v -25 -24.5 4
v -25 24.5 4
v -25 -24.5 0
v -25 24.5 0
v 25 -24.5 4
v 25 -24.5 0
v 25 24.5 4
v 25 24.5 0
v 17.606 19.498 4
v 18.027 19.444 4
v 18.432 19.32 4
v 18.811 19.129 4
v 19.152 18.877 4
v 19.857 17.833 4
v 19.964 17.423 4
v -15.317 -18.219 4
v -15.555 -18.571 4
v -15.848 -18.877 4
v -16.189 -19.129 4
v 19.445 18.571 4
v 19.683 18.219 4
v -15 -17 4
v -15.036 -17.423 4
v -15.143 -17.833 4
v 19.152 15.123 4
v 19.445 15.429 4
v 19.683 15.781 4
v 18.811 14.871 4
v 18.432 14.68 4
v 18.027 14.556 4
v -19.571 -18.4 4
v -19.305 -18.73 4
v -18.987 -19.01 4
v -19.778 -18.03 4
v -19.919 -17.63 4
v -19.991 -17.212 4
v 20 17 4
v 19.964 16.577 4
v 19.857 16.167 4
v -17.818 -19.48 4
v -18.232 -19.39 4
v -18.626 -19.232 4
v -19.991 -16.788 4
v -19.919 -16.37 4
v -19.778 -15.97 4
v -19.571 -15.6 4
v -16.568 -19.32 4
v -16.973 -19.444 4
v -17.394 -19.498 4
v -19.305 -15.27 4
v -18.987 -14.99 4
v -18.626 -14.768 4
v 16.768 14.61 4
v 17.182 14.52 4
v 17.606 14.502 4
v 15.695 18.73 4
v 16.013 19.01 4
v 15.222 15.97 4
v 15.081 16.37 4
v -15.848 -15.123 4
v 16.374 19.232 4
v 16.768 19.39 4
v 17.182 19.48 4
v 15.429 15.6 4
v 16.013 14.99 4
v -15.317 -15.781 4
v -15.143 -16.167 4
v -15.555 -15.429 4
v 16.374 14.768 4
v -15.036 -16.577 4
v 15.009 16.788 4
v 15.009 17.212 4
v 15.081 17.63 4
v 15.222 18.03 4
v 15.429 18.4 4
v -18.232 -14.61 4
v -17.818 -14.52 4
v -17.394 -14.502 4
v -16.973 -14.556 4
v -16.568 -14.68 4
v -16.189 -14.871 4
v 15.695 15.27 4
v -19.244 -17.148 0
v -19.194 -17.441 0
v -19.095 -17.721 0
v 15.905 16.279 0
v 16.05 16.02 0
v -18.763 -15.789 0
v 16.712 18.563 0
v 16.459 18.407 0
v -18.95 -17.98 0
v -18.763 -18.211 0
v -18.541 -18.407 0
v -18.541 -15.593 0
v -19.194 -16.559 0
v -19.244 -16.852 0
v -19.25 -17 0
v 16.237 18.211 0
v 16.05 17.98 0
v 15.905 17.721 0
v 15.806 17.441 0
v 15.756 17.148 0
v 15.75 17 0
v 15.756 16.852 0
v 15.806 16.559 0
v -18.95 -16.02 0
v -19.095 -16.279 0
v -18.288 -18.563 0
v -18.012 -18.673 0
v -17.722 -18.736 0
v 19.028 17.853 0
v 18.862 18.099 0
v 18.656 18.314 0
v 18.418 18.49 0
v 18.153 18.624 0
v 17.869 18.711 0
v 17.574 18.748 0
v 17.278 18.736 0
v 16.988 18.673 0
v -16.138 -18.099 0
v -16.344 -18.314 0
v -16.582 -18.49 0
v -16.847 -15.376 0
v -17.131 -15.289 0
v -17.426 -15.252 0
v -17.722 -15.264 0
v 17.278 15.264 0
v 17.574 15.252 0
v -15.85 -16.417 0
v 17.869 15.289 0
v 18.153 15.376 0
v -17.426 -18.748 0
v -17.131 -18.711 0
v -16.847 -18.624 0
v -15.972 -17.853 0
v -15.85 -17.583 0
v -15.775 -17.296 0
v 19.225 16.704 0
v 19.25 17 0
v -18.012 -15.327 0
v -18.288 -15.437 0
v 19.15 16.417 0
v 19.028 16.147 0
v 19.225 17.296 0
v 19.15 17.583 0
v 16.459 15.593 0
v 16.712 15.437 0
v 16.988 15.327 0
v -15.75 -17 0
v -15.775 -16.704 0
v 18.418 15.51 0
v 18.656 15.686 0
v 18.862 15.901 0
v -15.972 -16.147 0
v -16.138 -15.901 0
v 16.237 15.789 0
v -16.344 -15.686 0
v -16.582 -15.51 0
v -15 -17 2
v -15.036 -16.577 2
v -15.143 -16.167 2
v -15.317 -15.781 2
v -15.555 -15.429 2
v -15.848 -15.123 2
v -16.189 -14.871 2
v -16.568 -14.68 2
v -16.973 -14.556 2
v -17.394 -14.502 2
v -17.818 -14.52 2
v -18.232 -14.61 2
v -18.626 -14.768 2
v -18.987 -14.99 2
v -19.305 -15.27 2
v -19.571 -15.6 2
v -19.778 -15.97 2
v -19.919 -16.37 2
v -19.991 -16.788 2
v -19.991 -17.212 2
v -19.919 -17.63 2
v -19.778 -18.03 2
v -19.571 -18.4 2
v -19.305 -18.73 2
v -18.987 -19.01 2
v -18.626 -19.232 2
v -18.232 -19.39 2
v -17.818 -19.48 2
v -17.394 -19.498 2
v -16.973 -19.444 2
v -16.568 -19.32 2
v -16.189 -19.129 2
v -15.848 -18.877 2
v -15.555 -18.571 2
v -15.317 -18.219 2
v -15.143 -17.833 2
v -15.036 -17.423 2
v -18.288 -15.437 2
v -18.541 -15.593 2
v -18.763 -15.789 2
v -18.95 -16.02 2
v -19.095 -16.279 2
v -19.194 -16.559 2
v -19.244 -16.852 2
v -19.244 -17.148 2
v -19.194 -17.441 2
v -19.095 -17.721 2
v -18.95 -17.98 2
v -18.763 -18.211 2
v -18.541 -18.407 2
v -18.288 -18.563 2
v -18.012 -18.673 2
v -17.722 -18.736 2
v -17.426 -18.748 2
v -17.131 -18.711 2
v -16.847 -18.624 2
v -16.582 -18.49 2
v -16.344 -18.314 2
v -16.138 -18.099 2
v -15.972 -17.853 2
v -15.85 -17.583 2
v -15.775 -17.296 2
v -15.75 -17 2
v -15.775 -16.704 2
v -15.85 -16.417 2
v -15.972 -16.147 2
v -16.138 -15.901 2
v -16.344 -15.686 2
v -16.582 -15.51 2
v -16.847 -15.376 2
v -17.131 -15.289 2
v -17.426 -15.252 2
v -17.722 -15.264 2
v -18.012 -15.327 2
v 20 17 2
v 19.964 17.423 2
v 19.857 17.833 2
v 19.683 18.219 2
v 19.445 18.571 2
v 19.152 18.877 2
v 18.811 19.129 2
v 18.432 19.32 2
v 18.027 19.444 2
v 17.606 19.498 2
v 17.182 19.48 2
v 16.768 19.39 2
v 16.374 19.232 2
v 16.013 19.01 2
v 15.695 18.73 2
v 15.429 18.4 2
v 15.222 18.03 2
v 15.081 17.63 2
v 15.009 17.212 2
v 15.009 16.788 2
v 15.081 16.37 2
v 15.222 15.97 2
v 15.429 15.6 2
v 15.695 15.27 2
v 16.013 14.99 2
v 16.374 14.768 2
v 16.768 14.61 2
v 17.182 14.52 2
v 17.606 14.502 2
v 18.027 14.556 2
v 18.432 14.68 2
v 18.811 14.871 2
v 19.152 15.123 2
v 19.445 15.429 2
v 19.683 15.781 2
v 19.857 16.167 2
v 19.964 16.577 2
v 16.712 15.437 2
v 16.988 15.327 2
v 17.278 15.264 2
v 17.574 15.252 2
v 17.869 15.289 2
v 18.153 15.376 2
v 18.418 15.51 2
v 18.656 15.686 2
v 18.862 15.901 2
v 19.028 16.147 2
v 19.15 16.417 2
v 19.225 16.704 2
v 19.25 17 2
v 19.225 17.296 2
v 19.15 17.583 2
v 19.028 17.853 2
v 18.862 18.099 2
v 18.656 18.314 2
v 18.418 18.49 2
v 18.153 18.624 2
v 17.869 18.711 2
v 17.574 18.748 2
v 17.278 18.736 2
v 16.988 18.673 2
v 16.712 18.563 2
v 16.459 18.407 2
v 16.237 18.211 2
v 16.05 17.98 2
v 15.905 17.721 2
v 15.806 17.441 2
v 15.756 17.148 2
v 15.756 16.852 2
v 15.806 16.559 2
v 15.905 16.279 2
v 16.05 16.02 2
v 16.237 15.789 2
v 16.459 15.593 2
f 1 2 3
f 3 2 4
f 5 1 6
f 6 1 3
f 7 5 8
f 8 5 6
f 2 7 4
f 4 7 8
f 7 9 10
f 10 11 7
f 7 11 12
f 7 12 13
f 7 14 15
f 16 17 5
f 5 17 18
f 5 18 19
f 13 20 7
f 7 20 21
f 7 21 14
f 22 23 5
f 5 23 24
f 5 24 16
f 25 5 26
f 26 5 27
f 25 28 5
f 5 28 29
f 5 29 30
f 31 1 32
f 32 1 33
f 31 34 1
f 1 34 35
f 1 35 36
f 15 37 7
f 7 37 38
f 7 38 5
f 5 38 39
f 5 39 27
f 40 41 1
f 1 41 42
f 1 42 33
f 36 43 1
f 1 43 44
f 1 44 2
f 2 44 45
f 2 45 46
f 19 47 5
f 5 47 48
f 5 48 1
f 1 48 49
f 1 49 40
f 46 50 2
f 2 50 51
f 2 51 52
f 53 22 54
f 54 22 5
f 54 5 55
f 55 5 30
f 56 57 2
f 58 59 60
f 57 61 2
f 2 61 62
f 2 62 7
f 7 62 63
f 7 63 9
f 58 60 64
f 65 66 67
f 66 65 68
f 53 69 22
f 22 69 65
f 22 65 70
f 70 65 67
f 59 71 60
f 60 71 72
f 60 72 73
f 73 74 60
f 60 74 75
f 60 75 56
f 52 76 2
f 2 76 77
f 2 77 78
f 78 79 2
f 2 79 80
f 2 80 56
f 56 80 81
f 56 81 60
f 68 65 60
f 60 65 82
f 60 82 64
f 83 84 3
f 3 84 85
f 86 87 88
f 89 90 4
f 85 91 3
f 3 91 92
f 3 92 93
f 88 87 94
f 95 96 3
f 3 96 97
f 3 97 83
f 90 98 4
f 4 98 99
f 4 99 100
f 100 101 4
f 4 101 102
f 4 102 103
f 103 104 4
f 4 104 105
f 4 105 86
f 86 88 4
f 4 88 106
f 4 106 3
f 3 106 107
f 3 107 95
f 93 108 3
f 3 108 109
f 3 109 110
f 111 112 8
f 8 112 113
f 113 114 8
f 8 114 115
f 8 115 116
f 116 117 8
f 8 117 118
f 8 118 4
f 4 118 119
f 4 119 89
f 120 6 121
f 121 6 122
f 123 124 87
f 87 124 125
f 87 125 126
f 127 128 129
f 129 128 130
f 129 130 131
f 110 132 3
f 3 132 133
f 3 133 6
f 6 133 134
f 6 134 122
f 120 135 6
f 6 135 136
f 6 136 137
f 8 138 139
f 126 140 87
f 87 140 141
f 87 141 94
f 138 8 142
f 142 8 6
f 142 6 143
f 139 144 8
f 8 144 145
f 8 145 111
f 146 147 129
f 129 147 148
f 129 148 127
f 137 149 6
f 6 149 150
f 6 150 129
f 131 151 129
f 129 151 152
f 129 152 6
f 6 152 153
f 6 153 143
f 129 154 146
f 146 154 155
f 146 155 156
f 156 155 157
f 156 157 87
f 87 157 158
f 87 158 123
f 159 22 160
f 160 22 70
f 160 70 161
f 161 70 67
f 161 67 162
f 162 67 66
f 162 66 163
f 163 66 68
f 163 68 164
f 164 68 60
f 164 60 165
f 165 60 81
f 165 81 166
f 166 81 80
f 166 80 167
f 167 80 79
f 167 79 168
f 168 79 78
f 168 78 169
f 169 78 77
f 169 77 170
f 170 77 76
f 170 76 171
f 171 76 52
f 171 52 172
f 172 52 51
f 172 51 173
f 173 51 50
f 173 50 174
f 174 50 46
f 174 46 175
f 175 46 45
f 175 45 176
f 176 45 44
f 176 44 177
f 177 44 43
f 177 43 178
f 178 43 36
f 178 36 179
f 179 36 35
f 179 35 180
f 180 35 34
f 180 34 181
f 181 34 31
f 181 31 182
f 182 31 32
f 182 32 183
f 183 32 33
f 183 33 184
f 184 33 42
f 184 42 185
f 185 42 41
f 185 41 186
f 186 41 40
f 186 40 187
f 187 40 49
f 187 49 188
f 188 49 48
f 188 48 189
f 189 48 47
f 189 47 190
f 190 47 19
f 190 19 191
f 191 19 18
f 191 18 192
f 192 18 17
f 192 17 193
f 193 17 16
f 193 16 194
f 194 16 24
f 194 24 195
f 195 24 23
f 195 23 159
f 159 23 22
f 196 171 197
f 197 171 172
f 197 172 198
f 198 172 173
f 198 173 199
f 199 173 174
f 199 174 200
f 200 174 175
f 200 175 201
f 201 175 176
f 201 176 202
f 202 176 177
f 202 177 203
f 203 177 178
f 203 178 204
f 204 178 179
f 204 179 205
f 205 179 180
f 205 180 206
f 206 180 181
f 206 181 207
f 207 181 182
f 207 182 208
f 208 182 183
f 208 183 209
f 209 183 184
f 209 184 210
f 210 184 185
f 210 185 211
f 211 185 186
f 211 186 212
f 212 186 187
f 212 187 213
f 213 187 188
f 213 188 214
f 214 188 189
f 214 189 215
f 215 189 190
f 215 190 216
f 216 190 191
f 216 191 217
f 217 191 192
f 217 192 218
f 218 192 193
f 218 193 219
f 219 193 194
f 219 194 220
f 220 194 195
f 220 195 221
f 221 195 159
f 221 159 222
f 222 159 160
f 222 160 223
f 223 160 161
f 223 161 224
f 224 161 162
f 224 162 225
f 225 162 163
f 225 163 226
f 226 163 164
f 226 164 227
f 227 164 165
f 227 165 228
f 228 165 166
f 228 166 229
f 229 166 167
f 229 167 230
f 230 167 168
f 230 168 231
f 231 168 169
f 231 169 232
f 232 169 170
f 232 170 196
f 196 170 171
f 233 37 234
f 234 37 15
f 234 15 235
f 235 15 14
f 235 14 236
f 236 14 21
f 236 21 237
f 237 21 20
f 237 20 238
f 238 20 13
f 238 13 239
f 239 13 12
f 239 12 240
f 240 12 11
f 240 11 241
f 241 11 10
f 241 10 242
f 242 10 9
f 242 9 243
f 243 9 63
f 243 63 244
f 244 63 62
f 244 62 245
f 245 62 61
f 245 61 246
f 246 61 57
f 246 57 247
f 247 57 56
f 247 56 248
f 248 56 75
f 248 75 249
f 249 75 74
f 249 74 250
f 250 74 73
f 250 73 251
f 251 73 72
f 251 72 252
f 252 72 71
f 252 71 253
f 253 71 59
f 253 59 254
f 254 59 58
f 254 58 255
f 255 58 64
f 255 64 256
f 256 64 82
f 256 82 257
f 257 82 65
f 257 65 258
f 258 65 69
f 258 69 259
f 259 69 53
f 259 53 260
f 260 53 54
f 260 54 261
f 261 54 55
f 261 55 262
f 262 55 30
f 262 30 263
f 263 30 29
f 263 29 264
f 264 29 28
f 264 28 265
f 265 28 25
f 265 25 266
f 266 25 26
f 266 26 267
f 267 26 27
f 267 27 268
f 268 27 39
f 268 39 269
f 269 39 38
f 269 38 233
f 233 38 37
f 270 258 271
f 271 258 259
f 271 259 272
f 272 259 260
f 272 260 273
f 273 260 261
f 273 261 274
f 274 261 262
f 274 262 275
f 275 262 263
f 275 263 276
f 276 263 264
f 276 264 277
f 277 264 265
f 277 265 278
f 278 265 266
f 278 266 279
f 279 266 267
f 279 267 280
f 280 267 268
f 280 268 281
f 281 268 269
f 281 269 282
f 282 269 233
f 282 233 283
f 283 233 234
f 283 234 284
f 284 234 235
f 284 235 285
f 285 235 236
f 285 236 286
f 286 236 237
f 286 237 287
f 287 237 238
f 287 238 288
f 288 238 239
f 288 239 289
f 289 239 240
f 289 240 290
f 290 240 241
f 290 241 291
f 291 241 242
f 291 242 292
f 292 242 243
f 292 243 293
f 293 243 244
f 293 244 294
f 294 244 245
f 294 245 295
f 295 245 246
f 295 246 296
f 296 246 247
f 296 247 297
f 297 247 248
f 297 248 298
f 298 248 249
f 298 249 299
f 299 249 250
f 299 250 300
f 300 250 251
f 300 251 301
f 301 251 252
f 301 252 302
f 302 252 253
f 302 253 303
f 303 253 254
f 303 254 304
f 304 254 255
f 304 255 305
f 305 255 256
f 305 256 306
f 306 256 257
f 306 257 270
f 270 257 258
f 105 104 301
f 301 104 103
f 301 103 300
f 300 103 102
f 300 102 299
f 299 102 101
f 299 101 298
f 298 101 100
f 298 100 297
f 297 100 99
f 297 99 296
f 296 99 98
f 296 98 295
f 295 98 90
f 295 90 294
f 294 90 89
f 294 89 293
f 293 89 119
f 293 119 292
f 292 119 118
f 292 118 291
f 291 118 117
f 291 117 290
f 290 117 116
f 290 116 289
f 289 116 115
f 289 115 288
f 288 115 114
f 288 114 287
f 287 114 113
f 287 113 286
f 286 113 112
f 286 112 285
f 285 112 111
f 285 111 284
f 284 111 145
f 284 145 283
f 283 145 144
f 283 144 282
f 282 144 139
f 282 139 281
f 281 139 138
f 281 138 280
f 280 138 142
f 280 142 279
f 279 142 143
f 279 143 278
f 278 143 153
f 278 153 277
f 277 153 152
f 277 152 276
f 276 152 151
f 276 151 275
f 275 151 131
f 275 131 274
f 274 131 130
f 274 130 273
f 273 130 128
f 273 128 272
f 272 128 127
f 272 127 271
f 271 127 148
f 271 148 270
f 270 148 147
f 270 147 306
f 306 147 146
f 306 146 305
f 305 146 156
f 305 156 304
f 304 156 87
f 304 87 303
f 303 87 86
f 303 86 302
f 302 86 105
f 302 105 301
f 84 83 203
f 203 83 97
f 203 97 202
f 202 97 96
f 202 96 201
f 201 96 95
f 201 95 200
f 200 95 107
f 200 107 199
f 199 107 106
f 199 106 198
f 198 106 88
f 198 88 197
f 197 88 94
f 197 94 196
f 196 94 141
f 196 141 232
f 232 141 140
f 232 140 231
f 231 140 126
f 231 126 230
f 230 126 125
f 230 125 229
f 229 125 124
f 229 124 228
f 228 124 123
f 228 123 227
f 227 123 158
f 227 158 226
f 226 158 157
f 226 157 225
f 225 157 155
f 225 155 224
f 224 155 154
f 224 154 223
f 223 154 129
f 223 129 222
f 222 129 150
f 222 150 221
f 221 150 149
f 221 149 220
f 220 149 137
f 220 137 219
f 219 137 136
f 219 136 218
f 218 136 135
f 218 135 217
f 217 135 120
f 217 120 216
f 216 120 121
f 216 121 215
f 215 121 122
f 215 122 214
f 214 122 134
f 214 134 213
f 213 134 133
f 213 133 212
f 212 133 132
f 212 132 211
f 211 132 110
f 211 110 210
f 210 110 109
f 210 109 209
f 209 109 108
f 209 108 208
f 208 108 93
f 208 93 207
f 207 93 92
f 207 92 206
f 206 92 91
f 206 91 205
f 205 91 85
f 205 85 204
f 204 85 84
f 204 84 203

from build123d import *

# Parameters (mm, degrees)
SKETCH_1_W          = 50
SKETCH_1_H          = 49
EXTRUDE_1_DEPTH     = 4
SKETCH_2_R          = 2.5
CUT_EXTRUDE_1_DEPTH = 2
SKETCH_3_R          = 1.75
CUT_EXTRUDE_2_DEPTH = 4


with BuildPart() as part:
    # 草图1 → 凸台-拉伸1 (new body)
    with BuildSketch(Plane.XY):
        Rectangle(SKETCH_1_W, SKETCH_1_H)
    extrude(amount=EXTRUDE_1_DEPTH)

    # 草图2 → 切除-拉伸1 (cut)
    with BuildSketch(Plane.XY.offset(4)):
        with Locations((17.5, 17)):
            Circle(SKETCH_2_R)
        with Locations((-17.5, -17)):
            Circle(SKETCH_2_R)
    extrude(amount=-CUT_EXTRUDE_1_DEPTH, mode=Mode.SUBTRACT)

    # 草图3 → 切除-拉伸2 (cut)
    with BuildSketch(Plane.XY.offset(2)):
        with Locations((-17.5, -17)):
            Circle(SKETCH_3_R)
        with Locations((17.5, 17)):
            Circle(SKETCH_3_R)
    extrude(amount=-CUT_EXTRUDE_2_DEPTH, mode=Mode.SUBTRACT)


solid = part.part
